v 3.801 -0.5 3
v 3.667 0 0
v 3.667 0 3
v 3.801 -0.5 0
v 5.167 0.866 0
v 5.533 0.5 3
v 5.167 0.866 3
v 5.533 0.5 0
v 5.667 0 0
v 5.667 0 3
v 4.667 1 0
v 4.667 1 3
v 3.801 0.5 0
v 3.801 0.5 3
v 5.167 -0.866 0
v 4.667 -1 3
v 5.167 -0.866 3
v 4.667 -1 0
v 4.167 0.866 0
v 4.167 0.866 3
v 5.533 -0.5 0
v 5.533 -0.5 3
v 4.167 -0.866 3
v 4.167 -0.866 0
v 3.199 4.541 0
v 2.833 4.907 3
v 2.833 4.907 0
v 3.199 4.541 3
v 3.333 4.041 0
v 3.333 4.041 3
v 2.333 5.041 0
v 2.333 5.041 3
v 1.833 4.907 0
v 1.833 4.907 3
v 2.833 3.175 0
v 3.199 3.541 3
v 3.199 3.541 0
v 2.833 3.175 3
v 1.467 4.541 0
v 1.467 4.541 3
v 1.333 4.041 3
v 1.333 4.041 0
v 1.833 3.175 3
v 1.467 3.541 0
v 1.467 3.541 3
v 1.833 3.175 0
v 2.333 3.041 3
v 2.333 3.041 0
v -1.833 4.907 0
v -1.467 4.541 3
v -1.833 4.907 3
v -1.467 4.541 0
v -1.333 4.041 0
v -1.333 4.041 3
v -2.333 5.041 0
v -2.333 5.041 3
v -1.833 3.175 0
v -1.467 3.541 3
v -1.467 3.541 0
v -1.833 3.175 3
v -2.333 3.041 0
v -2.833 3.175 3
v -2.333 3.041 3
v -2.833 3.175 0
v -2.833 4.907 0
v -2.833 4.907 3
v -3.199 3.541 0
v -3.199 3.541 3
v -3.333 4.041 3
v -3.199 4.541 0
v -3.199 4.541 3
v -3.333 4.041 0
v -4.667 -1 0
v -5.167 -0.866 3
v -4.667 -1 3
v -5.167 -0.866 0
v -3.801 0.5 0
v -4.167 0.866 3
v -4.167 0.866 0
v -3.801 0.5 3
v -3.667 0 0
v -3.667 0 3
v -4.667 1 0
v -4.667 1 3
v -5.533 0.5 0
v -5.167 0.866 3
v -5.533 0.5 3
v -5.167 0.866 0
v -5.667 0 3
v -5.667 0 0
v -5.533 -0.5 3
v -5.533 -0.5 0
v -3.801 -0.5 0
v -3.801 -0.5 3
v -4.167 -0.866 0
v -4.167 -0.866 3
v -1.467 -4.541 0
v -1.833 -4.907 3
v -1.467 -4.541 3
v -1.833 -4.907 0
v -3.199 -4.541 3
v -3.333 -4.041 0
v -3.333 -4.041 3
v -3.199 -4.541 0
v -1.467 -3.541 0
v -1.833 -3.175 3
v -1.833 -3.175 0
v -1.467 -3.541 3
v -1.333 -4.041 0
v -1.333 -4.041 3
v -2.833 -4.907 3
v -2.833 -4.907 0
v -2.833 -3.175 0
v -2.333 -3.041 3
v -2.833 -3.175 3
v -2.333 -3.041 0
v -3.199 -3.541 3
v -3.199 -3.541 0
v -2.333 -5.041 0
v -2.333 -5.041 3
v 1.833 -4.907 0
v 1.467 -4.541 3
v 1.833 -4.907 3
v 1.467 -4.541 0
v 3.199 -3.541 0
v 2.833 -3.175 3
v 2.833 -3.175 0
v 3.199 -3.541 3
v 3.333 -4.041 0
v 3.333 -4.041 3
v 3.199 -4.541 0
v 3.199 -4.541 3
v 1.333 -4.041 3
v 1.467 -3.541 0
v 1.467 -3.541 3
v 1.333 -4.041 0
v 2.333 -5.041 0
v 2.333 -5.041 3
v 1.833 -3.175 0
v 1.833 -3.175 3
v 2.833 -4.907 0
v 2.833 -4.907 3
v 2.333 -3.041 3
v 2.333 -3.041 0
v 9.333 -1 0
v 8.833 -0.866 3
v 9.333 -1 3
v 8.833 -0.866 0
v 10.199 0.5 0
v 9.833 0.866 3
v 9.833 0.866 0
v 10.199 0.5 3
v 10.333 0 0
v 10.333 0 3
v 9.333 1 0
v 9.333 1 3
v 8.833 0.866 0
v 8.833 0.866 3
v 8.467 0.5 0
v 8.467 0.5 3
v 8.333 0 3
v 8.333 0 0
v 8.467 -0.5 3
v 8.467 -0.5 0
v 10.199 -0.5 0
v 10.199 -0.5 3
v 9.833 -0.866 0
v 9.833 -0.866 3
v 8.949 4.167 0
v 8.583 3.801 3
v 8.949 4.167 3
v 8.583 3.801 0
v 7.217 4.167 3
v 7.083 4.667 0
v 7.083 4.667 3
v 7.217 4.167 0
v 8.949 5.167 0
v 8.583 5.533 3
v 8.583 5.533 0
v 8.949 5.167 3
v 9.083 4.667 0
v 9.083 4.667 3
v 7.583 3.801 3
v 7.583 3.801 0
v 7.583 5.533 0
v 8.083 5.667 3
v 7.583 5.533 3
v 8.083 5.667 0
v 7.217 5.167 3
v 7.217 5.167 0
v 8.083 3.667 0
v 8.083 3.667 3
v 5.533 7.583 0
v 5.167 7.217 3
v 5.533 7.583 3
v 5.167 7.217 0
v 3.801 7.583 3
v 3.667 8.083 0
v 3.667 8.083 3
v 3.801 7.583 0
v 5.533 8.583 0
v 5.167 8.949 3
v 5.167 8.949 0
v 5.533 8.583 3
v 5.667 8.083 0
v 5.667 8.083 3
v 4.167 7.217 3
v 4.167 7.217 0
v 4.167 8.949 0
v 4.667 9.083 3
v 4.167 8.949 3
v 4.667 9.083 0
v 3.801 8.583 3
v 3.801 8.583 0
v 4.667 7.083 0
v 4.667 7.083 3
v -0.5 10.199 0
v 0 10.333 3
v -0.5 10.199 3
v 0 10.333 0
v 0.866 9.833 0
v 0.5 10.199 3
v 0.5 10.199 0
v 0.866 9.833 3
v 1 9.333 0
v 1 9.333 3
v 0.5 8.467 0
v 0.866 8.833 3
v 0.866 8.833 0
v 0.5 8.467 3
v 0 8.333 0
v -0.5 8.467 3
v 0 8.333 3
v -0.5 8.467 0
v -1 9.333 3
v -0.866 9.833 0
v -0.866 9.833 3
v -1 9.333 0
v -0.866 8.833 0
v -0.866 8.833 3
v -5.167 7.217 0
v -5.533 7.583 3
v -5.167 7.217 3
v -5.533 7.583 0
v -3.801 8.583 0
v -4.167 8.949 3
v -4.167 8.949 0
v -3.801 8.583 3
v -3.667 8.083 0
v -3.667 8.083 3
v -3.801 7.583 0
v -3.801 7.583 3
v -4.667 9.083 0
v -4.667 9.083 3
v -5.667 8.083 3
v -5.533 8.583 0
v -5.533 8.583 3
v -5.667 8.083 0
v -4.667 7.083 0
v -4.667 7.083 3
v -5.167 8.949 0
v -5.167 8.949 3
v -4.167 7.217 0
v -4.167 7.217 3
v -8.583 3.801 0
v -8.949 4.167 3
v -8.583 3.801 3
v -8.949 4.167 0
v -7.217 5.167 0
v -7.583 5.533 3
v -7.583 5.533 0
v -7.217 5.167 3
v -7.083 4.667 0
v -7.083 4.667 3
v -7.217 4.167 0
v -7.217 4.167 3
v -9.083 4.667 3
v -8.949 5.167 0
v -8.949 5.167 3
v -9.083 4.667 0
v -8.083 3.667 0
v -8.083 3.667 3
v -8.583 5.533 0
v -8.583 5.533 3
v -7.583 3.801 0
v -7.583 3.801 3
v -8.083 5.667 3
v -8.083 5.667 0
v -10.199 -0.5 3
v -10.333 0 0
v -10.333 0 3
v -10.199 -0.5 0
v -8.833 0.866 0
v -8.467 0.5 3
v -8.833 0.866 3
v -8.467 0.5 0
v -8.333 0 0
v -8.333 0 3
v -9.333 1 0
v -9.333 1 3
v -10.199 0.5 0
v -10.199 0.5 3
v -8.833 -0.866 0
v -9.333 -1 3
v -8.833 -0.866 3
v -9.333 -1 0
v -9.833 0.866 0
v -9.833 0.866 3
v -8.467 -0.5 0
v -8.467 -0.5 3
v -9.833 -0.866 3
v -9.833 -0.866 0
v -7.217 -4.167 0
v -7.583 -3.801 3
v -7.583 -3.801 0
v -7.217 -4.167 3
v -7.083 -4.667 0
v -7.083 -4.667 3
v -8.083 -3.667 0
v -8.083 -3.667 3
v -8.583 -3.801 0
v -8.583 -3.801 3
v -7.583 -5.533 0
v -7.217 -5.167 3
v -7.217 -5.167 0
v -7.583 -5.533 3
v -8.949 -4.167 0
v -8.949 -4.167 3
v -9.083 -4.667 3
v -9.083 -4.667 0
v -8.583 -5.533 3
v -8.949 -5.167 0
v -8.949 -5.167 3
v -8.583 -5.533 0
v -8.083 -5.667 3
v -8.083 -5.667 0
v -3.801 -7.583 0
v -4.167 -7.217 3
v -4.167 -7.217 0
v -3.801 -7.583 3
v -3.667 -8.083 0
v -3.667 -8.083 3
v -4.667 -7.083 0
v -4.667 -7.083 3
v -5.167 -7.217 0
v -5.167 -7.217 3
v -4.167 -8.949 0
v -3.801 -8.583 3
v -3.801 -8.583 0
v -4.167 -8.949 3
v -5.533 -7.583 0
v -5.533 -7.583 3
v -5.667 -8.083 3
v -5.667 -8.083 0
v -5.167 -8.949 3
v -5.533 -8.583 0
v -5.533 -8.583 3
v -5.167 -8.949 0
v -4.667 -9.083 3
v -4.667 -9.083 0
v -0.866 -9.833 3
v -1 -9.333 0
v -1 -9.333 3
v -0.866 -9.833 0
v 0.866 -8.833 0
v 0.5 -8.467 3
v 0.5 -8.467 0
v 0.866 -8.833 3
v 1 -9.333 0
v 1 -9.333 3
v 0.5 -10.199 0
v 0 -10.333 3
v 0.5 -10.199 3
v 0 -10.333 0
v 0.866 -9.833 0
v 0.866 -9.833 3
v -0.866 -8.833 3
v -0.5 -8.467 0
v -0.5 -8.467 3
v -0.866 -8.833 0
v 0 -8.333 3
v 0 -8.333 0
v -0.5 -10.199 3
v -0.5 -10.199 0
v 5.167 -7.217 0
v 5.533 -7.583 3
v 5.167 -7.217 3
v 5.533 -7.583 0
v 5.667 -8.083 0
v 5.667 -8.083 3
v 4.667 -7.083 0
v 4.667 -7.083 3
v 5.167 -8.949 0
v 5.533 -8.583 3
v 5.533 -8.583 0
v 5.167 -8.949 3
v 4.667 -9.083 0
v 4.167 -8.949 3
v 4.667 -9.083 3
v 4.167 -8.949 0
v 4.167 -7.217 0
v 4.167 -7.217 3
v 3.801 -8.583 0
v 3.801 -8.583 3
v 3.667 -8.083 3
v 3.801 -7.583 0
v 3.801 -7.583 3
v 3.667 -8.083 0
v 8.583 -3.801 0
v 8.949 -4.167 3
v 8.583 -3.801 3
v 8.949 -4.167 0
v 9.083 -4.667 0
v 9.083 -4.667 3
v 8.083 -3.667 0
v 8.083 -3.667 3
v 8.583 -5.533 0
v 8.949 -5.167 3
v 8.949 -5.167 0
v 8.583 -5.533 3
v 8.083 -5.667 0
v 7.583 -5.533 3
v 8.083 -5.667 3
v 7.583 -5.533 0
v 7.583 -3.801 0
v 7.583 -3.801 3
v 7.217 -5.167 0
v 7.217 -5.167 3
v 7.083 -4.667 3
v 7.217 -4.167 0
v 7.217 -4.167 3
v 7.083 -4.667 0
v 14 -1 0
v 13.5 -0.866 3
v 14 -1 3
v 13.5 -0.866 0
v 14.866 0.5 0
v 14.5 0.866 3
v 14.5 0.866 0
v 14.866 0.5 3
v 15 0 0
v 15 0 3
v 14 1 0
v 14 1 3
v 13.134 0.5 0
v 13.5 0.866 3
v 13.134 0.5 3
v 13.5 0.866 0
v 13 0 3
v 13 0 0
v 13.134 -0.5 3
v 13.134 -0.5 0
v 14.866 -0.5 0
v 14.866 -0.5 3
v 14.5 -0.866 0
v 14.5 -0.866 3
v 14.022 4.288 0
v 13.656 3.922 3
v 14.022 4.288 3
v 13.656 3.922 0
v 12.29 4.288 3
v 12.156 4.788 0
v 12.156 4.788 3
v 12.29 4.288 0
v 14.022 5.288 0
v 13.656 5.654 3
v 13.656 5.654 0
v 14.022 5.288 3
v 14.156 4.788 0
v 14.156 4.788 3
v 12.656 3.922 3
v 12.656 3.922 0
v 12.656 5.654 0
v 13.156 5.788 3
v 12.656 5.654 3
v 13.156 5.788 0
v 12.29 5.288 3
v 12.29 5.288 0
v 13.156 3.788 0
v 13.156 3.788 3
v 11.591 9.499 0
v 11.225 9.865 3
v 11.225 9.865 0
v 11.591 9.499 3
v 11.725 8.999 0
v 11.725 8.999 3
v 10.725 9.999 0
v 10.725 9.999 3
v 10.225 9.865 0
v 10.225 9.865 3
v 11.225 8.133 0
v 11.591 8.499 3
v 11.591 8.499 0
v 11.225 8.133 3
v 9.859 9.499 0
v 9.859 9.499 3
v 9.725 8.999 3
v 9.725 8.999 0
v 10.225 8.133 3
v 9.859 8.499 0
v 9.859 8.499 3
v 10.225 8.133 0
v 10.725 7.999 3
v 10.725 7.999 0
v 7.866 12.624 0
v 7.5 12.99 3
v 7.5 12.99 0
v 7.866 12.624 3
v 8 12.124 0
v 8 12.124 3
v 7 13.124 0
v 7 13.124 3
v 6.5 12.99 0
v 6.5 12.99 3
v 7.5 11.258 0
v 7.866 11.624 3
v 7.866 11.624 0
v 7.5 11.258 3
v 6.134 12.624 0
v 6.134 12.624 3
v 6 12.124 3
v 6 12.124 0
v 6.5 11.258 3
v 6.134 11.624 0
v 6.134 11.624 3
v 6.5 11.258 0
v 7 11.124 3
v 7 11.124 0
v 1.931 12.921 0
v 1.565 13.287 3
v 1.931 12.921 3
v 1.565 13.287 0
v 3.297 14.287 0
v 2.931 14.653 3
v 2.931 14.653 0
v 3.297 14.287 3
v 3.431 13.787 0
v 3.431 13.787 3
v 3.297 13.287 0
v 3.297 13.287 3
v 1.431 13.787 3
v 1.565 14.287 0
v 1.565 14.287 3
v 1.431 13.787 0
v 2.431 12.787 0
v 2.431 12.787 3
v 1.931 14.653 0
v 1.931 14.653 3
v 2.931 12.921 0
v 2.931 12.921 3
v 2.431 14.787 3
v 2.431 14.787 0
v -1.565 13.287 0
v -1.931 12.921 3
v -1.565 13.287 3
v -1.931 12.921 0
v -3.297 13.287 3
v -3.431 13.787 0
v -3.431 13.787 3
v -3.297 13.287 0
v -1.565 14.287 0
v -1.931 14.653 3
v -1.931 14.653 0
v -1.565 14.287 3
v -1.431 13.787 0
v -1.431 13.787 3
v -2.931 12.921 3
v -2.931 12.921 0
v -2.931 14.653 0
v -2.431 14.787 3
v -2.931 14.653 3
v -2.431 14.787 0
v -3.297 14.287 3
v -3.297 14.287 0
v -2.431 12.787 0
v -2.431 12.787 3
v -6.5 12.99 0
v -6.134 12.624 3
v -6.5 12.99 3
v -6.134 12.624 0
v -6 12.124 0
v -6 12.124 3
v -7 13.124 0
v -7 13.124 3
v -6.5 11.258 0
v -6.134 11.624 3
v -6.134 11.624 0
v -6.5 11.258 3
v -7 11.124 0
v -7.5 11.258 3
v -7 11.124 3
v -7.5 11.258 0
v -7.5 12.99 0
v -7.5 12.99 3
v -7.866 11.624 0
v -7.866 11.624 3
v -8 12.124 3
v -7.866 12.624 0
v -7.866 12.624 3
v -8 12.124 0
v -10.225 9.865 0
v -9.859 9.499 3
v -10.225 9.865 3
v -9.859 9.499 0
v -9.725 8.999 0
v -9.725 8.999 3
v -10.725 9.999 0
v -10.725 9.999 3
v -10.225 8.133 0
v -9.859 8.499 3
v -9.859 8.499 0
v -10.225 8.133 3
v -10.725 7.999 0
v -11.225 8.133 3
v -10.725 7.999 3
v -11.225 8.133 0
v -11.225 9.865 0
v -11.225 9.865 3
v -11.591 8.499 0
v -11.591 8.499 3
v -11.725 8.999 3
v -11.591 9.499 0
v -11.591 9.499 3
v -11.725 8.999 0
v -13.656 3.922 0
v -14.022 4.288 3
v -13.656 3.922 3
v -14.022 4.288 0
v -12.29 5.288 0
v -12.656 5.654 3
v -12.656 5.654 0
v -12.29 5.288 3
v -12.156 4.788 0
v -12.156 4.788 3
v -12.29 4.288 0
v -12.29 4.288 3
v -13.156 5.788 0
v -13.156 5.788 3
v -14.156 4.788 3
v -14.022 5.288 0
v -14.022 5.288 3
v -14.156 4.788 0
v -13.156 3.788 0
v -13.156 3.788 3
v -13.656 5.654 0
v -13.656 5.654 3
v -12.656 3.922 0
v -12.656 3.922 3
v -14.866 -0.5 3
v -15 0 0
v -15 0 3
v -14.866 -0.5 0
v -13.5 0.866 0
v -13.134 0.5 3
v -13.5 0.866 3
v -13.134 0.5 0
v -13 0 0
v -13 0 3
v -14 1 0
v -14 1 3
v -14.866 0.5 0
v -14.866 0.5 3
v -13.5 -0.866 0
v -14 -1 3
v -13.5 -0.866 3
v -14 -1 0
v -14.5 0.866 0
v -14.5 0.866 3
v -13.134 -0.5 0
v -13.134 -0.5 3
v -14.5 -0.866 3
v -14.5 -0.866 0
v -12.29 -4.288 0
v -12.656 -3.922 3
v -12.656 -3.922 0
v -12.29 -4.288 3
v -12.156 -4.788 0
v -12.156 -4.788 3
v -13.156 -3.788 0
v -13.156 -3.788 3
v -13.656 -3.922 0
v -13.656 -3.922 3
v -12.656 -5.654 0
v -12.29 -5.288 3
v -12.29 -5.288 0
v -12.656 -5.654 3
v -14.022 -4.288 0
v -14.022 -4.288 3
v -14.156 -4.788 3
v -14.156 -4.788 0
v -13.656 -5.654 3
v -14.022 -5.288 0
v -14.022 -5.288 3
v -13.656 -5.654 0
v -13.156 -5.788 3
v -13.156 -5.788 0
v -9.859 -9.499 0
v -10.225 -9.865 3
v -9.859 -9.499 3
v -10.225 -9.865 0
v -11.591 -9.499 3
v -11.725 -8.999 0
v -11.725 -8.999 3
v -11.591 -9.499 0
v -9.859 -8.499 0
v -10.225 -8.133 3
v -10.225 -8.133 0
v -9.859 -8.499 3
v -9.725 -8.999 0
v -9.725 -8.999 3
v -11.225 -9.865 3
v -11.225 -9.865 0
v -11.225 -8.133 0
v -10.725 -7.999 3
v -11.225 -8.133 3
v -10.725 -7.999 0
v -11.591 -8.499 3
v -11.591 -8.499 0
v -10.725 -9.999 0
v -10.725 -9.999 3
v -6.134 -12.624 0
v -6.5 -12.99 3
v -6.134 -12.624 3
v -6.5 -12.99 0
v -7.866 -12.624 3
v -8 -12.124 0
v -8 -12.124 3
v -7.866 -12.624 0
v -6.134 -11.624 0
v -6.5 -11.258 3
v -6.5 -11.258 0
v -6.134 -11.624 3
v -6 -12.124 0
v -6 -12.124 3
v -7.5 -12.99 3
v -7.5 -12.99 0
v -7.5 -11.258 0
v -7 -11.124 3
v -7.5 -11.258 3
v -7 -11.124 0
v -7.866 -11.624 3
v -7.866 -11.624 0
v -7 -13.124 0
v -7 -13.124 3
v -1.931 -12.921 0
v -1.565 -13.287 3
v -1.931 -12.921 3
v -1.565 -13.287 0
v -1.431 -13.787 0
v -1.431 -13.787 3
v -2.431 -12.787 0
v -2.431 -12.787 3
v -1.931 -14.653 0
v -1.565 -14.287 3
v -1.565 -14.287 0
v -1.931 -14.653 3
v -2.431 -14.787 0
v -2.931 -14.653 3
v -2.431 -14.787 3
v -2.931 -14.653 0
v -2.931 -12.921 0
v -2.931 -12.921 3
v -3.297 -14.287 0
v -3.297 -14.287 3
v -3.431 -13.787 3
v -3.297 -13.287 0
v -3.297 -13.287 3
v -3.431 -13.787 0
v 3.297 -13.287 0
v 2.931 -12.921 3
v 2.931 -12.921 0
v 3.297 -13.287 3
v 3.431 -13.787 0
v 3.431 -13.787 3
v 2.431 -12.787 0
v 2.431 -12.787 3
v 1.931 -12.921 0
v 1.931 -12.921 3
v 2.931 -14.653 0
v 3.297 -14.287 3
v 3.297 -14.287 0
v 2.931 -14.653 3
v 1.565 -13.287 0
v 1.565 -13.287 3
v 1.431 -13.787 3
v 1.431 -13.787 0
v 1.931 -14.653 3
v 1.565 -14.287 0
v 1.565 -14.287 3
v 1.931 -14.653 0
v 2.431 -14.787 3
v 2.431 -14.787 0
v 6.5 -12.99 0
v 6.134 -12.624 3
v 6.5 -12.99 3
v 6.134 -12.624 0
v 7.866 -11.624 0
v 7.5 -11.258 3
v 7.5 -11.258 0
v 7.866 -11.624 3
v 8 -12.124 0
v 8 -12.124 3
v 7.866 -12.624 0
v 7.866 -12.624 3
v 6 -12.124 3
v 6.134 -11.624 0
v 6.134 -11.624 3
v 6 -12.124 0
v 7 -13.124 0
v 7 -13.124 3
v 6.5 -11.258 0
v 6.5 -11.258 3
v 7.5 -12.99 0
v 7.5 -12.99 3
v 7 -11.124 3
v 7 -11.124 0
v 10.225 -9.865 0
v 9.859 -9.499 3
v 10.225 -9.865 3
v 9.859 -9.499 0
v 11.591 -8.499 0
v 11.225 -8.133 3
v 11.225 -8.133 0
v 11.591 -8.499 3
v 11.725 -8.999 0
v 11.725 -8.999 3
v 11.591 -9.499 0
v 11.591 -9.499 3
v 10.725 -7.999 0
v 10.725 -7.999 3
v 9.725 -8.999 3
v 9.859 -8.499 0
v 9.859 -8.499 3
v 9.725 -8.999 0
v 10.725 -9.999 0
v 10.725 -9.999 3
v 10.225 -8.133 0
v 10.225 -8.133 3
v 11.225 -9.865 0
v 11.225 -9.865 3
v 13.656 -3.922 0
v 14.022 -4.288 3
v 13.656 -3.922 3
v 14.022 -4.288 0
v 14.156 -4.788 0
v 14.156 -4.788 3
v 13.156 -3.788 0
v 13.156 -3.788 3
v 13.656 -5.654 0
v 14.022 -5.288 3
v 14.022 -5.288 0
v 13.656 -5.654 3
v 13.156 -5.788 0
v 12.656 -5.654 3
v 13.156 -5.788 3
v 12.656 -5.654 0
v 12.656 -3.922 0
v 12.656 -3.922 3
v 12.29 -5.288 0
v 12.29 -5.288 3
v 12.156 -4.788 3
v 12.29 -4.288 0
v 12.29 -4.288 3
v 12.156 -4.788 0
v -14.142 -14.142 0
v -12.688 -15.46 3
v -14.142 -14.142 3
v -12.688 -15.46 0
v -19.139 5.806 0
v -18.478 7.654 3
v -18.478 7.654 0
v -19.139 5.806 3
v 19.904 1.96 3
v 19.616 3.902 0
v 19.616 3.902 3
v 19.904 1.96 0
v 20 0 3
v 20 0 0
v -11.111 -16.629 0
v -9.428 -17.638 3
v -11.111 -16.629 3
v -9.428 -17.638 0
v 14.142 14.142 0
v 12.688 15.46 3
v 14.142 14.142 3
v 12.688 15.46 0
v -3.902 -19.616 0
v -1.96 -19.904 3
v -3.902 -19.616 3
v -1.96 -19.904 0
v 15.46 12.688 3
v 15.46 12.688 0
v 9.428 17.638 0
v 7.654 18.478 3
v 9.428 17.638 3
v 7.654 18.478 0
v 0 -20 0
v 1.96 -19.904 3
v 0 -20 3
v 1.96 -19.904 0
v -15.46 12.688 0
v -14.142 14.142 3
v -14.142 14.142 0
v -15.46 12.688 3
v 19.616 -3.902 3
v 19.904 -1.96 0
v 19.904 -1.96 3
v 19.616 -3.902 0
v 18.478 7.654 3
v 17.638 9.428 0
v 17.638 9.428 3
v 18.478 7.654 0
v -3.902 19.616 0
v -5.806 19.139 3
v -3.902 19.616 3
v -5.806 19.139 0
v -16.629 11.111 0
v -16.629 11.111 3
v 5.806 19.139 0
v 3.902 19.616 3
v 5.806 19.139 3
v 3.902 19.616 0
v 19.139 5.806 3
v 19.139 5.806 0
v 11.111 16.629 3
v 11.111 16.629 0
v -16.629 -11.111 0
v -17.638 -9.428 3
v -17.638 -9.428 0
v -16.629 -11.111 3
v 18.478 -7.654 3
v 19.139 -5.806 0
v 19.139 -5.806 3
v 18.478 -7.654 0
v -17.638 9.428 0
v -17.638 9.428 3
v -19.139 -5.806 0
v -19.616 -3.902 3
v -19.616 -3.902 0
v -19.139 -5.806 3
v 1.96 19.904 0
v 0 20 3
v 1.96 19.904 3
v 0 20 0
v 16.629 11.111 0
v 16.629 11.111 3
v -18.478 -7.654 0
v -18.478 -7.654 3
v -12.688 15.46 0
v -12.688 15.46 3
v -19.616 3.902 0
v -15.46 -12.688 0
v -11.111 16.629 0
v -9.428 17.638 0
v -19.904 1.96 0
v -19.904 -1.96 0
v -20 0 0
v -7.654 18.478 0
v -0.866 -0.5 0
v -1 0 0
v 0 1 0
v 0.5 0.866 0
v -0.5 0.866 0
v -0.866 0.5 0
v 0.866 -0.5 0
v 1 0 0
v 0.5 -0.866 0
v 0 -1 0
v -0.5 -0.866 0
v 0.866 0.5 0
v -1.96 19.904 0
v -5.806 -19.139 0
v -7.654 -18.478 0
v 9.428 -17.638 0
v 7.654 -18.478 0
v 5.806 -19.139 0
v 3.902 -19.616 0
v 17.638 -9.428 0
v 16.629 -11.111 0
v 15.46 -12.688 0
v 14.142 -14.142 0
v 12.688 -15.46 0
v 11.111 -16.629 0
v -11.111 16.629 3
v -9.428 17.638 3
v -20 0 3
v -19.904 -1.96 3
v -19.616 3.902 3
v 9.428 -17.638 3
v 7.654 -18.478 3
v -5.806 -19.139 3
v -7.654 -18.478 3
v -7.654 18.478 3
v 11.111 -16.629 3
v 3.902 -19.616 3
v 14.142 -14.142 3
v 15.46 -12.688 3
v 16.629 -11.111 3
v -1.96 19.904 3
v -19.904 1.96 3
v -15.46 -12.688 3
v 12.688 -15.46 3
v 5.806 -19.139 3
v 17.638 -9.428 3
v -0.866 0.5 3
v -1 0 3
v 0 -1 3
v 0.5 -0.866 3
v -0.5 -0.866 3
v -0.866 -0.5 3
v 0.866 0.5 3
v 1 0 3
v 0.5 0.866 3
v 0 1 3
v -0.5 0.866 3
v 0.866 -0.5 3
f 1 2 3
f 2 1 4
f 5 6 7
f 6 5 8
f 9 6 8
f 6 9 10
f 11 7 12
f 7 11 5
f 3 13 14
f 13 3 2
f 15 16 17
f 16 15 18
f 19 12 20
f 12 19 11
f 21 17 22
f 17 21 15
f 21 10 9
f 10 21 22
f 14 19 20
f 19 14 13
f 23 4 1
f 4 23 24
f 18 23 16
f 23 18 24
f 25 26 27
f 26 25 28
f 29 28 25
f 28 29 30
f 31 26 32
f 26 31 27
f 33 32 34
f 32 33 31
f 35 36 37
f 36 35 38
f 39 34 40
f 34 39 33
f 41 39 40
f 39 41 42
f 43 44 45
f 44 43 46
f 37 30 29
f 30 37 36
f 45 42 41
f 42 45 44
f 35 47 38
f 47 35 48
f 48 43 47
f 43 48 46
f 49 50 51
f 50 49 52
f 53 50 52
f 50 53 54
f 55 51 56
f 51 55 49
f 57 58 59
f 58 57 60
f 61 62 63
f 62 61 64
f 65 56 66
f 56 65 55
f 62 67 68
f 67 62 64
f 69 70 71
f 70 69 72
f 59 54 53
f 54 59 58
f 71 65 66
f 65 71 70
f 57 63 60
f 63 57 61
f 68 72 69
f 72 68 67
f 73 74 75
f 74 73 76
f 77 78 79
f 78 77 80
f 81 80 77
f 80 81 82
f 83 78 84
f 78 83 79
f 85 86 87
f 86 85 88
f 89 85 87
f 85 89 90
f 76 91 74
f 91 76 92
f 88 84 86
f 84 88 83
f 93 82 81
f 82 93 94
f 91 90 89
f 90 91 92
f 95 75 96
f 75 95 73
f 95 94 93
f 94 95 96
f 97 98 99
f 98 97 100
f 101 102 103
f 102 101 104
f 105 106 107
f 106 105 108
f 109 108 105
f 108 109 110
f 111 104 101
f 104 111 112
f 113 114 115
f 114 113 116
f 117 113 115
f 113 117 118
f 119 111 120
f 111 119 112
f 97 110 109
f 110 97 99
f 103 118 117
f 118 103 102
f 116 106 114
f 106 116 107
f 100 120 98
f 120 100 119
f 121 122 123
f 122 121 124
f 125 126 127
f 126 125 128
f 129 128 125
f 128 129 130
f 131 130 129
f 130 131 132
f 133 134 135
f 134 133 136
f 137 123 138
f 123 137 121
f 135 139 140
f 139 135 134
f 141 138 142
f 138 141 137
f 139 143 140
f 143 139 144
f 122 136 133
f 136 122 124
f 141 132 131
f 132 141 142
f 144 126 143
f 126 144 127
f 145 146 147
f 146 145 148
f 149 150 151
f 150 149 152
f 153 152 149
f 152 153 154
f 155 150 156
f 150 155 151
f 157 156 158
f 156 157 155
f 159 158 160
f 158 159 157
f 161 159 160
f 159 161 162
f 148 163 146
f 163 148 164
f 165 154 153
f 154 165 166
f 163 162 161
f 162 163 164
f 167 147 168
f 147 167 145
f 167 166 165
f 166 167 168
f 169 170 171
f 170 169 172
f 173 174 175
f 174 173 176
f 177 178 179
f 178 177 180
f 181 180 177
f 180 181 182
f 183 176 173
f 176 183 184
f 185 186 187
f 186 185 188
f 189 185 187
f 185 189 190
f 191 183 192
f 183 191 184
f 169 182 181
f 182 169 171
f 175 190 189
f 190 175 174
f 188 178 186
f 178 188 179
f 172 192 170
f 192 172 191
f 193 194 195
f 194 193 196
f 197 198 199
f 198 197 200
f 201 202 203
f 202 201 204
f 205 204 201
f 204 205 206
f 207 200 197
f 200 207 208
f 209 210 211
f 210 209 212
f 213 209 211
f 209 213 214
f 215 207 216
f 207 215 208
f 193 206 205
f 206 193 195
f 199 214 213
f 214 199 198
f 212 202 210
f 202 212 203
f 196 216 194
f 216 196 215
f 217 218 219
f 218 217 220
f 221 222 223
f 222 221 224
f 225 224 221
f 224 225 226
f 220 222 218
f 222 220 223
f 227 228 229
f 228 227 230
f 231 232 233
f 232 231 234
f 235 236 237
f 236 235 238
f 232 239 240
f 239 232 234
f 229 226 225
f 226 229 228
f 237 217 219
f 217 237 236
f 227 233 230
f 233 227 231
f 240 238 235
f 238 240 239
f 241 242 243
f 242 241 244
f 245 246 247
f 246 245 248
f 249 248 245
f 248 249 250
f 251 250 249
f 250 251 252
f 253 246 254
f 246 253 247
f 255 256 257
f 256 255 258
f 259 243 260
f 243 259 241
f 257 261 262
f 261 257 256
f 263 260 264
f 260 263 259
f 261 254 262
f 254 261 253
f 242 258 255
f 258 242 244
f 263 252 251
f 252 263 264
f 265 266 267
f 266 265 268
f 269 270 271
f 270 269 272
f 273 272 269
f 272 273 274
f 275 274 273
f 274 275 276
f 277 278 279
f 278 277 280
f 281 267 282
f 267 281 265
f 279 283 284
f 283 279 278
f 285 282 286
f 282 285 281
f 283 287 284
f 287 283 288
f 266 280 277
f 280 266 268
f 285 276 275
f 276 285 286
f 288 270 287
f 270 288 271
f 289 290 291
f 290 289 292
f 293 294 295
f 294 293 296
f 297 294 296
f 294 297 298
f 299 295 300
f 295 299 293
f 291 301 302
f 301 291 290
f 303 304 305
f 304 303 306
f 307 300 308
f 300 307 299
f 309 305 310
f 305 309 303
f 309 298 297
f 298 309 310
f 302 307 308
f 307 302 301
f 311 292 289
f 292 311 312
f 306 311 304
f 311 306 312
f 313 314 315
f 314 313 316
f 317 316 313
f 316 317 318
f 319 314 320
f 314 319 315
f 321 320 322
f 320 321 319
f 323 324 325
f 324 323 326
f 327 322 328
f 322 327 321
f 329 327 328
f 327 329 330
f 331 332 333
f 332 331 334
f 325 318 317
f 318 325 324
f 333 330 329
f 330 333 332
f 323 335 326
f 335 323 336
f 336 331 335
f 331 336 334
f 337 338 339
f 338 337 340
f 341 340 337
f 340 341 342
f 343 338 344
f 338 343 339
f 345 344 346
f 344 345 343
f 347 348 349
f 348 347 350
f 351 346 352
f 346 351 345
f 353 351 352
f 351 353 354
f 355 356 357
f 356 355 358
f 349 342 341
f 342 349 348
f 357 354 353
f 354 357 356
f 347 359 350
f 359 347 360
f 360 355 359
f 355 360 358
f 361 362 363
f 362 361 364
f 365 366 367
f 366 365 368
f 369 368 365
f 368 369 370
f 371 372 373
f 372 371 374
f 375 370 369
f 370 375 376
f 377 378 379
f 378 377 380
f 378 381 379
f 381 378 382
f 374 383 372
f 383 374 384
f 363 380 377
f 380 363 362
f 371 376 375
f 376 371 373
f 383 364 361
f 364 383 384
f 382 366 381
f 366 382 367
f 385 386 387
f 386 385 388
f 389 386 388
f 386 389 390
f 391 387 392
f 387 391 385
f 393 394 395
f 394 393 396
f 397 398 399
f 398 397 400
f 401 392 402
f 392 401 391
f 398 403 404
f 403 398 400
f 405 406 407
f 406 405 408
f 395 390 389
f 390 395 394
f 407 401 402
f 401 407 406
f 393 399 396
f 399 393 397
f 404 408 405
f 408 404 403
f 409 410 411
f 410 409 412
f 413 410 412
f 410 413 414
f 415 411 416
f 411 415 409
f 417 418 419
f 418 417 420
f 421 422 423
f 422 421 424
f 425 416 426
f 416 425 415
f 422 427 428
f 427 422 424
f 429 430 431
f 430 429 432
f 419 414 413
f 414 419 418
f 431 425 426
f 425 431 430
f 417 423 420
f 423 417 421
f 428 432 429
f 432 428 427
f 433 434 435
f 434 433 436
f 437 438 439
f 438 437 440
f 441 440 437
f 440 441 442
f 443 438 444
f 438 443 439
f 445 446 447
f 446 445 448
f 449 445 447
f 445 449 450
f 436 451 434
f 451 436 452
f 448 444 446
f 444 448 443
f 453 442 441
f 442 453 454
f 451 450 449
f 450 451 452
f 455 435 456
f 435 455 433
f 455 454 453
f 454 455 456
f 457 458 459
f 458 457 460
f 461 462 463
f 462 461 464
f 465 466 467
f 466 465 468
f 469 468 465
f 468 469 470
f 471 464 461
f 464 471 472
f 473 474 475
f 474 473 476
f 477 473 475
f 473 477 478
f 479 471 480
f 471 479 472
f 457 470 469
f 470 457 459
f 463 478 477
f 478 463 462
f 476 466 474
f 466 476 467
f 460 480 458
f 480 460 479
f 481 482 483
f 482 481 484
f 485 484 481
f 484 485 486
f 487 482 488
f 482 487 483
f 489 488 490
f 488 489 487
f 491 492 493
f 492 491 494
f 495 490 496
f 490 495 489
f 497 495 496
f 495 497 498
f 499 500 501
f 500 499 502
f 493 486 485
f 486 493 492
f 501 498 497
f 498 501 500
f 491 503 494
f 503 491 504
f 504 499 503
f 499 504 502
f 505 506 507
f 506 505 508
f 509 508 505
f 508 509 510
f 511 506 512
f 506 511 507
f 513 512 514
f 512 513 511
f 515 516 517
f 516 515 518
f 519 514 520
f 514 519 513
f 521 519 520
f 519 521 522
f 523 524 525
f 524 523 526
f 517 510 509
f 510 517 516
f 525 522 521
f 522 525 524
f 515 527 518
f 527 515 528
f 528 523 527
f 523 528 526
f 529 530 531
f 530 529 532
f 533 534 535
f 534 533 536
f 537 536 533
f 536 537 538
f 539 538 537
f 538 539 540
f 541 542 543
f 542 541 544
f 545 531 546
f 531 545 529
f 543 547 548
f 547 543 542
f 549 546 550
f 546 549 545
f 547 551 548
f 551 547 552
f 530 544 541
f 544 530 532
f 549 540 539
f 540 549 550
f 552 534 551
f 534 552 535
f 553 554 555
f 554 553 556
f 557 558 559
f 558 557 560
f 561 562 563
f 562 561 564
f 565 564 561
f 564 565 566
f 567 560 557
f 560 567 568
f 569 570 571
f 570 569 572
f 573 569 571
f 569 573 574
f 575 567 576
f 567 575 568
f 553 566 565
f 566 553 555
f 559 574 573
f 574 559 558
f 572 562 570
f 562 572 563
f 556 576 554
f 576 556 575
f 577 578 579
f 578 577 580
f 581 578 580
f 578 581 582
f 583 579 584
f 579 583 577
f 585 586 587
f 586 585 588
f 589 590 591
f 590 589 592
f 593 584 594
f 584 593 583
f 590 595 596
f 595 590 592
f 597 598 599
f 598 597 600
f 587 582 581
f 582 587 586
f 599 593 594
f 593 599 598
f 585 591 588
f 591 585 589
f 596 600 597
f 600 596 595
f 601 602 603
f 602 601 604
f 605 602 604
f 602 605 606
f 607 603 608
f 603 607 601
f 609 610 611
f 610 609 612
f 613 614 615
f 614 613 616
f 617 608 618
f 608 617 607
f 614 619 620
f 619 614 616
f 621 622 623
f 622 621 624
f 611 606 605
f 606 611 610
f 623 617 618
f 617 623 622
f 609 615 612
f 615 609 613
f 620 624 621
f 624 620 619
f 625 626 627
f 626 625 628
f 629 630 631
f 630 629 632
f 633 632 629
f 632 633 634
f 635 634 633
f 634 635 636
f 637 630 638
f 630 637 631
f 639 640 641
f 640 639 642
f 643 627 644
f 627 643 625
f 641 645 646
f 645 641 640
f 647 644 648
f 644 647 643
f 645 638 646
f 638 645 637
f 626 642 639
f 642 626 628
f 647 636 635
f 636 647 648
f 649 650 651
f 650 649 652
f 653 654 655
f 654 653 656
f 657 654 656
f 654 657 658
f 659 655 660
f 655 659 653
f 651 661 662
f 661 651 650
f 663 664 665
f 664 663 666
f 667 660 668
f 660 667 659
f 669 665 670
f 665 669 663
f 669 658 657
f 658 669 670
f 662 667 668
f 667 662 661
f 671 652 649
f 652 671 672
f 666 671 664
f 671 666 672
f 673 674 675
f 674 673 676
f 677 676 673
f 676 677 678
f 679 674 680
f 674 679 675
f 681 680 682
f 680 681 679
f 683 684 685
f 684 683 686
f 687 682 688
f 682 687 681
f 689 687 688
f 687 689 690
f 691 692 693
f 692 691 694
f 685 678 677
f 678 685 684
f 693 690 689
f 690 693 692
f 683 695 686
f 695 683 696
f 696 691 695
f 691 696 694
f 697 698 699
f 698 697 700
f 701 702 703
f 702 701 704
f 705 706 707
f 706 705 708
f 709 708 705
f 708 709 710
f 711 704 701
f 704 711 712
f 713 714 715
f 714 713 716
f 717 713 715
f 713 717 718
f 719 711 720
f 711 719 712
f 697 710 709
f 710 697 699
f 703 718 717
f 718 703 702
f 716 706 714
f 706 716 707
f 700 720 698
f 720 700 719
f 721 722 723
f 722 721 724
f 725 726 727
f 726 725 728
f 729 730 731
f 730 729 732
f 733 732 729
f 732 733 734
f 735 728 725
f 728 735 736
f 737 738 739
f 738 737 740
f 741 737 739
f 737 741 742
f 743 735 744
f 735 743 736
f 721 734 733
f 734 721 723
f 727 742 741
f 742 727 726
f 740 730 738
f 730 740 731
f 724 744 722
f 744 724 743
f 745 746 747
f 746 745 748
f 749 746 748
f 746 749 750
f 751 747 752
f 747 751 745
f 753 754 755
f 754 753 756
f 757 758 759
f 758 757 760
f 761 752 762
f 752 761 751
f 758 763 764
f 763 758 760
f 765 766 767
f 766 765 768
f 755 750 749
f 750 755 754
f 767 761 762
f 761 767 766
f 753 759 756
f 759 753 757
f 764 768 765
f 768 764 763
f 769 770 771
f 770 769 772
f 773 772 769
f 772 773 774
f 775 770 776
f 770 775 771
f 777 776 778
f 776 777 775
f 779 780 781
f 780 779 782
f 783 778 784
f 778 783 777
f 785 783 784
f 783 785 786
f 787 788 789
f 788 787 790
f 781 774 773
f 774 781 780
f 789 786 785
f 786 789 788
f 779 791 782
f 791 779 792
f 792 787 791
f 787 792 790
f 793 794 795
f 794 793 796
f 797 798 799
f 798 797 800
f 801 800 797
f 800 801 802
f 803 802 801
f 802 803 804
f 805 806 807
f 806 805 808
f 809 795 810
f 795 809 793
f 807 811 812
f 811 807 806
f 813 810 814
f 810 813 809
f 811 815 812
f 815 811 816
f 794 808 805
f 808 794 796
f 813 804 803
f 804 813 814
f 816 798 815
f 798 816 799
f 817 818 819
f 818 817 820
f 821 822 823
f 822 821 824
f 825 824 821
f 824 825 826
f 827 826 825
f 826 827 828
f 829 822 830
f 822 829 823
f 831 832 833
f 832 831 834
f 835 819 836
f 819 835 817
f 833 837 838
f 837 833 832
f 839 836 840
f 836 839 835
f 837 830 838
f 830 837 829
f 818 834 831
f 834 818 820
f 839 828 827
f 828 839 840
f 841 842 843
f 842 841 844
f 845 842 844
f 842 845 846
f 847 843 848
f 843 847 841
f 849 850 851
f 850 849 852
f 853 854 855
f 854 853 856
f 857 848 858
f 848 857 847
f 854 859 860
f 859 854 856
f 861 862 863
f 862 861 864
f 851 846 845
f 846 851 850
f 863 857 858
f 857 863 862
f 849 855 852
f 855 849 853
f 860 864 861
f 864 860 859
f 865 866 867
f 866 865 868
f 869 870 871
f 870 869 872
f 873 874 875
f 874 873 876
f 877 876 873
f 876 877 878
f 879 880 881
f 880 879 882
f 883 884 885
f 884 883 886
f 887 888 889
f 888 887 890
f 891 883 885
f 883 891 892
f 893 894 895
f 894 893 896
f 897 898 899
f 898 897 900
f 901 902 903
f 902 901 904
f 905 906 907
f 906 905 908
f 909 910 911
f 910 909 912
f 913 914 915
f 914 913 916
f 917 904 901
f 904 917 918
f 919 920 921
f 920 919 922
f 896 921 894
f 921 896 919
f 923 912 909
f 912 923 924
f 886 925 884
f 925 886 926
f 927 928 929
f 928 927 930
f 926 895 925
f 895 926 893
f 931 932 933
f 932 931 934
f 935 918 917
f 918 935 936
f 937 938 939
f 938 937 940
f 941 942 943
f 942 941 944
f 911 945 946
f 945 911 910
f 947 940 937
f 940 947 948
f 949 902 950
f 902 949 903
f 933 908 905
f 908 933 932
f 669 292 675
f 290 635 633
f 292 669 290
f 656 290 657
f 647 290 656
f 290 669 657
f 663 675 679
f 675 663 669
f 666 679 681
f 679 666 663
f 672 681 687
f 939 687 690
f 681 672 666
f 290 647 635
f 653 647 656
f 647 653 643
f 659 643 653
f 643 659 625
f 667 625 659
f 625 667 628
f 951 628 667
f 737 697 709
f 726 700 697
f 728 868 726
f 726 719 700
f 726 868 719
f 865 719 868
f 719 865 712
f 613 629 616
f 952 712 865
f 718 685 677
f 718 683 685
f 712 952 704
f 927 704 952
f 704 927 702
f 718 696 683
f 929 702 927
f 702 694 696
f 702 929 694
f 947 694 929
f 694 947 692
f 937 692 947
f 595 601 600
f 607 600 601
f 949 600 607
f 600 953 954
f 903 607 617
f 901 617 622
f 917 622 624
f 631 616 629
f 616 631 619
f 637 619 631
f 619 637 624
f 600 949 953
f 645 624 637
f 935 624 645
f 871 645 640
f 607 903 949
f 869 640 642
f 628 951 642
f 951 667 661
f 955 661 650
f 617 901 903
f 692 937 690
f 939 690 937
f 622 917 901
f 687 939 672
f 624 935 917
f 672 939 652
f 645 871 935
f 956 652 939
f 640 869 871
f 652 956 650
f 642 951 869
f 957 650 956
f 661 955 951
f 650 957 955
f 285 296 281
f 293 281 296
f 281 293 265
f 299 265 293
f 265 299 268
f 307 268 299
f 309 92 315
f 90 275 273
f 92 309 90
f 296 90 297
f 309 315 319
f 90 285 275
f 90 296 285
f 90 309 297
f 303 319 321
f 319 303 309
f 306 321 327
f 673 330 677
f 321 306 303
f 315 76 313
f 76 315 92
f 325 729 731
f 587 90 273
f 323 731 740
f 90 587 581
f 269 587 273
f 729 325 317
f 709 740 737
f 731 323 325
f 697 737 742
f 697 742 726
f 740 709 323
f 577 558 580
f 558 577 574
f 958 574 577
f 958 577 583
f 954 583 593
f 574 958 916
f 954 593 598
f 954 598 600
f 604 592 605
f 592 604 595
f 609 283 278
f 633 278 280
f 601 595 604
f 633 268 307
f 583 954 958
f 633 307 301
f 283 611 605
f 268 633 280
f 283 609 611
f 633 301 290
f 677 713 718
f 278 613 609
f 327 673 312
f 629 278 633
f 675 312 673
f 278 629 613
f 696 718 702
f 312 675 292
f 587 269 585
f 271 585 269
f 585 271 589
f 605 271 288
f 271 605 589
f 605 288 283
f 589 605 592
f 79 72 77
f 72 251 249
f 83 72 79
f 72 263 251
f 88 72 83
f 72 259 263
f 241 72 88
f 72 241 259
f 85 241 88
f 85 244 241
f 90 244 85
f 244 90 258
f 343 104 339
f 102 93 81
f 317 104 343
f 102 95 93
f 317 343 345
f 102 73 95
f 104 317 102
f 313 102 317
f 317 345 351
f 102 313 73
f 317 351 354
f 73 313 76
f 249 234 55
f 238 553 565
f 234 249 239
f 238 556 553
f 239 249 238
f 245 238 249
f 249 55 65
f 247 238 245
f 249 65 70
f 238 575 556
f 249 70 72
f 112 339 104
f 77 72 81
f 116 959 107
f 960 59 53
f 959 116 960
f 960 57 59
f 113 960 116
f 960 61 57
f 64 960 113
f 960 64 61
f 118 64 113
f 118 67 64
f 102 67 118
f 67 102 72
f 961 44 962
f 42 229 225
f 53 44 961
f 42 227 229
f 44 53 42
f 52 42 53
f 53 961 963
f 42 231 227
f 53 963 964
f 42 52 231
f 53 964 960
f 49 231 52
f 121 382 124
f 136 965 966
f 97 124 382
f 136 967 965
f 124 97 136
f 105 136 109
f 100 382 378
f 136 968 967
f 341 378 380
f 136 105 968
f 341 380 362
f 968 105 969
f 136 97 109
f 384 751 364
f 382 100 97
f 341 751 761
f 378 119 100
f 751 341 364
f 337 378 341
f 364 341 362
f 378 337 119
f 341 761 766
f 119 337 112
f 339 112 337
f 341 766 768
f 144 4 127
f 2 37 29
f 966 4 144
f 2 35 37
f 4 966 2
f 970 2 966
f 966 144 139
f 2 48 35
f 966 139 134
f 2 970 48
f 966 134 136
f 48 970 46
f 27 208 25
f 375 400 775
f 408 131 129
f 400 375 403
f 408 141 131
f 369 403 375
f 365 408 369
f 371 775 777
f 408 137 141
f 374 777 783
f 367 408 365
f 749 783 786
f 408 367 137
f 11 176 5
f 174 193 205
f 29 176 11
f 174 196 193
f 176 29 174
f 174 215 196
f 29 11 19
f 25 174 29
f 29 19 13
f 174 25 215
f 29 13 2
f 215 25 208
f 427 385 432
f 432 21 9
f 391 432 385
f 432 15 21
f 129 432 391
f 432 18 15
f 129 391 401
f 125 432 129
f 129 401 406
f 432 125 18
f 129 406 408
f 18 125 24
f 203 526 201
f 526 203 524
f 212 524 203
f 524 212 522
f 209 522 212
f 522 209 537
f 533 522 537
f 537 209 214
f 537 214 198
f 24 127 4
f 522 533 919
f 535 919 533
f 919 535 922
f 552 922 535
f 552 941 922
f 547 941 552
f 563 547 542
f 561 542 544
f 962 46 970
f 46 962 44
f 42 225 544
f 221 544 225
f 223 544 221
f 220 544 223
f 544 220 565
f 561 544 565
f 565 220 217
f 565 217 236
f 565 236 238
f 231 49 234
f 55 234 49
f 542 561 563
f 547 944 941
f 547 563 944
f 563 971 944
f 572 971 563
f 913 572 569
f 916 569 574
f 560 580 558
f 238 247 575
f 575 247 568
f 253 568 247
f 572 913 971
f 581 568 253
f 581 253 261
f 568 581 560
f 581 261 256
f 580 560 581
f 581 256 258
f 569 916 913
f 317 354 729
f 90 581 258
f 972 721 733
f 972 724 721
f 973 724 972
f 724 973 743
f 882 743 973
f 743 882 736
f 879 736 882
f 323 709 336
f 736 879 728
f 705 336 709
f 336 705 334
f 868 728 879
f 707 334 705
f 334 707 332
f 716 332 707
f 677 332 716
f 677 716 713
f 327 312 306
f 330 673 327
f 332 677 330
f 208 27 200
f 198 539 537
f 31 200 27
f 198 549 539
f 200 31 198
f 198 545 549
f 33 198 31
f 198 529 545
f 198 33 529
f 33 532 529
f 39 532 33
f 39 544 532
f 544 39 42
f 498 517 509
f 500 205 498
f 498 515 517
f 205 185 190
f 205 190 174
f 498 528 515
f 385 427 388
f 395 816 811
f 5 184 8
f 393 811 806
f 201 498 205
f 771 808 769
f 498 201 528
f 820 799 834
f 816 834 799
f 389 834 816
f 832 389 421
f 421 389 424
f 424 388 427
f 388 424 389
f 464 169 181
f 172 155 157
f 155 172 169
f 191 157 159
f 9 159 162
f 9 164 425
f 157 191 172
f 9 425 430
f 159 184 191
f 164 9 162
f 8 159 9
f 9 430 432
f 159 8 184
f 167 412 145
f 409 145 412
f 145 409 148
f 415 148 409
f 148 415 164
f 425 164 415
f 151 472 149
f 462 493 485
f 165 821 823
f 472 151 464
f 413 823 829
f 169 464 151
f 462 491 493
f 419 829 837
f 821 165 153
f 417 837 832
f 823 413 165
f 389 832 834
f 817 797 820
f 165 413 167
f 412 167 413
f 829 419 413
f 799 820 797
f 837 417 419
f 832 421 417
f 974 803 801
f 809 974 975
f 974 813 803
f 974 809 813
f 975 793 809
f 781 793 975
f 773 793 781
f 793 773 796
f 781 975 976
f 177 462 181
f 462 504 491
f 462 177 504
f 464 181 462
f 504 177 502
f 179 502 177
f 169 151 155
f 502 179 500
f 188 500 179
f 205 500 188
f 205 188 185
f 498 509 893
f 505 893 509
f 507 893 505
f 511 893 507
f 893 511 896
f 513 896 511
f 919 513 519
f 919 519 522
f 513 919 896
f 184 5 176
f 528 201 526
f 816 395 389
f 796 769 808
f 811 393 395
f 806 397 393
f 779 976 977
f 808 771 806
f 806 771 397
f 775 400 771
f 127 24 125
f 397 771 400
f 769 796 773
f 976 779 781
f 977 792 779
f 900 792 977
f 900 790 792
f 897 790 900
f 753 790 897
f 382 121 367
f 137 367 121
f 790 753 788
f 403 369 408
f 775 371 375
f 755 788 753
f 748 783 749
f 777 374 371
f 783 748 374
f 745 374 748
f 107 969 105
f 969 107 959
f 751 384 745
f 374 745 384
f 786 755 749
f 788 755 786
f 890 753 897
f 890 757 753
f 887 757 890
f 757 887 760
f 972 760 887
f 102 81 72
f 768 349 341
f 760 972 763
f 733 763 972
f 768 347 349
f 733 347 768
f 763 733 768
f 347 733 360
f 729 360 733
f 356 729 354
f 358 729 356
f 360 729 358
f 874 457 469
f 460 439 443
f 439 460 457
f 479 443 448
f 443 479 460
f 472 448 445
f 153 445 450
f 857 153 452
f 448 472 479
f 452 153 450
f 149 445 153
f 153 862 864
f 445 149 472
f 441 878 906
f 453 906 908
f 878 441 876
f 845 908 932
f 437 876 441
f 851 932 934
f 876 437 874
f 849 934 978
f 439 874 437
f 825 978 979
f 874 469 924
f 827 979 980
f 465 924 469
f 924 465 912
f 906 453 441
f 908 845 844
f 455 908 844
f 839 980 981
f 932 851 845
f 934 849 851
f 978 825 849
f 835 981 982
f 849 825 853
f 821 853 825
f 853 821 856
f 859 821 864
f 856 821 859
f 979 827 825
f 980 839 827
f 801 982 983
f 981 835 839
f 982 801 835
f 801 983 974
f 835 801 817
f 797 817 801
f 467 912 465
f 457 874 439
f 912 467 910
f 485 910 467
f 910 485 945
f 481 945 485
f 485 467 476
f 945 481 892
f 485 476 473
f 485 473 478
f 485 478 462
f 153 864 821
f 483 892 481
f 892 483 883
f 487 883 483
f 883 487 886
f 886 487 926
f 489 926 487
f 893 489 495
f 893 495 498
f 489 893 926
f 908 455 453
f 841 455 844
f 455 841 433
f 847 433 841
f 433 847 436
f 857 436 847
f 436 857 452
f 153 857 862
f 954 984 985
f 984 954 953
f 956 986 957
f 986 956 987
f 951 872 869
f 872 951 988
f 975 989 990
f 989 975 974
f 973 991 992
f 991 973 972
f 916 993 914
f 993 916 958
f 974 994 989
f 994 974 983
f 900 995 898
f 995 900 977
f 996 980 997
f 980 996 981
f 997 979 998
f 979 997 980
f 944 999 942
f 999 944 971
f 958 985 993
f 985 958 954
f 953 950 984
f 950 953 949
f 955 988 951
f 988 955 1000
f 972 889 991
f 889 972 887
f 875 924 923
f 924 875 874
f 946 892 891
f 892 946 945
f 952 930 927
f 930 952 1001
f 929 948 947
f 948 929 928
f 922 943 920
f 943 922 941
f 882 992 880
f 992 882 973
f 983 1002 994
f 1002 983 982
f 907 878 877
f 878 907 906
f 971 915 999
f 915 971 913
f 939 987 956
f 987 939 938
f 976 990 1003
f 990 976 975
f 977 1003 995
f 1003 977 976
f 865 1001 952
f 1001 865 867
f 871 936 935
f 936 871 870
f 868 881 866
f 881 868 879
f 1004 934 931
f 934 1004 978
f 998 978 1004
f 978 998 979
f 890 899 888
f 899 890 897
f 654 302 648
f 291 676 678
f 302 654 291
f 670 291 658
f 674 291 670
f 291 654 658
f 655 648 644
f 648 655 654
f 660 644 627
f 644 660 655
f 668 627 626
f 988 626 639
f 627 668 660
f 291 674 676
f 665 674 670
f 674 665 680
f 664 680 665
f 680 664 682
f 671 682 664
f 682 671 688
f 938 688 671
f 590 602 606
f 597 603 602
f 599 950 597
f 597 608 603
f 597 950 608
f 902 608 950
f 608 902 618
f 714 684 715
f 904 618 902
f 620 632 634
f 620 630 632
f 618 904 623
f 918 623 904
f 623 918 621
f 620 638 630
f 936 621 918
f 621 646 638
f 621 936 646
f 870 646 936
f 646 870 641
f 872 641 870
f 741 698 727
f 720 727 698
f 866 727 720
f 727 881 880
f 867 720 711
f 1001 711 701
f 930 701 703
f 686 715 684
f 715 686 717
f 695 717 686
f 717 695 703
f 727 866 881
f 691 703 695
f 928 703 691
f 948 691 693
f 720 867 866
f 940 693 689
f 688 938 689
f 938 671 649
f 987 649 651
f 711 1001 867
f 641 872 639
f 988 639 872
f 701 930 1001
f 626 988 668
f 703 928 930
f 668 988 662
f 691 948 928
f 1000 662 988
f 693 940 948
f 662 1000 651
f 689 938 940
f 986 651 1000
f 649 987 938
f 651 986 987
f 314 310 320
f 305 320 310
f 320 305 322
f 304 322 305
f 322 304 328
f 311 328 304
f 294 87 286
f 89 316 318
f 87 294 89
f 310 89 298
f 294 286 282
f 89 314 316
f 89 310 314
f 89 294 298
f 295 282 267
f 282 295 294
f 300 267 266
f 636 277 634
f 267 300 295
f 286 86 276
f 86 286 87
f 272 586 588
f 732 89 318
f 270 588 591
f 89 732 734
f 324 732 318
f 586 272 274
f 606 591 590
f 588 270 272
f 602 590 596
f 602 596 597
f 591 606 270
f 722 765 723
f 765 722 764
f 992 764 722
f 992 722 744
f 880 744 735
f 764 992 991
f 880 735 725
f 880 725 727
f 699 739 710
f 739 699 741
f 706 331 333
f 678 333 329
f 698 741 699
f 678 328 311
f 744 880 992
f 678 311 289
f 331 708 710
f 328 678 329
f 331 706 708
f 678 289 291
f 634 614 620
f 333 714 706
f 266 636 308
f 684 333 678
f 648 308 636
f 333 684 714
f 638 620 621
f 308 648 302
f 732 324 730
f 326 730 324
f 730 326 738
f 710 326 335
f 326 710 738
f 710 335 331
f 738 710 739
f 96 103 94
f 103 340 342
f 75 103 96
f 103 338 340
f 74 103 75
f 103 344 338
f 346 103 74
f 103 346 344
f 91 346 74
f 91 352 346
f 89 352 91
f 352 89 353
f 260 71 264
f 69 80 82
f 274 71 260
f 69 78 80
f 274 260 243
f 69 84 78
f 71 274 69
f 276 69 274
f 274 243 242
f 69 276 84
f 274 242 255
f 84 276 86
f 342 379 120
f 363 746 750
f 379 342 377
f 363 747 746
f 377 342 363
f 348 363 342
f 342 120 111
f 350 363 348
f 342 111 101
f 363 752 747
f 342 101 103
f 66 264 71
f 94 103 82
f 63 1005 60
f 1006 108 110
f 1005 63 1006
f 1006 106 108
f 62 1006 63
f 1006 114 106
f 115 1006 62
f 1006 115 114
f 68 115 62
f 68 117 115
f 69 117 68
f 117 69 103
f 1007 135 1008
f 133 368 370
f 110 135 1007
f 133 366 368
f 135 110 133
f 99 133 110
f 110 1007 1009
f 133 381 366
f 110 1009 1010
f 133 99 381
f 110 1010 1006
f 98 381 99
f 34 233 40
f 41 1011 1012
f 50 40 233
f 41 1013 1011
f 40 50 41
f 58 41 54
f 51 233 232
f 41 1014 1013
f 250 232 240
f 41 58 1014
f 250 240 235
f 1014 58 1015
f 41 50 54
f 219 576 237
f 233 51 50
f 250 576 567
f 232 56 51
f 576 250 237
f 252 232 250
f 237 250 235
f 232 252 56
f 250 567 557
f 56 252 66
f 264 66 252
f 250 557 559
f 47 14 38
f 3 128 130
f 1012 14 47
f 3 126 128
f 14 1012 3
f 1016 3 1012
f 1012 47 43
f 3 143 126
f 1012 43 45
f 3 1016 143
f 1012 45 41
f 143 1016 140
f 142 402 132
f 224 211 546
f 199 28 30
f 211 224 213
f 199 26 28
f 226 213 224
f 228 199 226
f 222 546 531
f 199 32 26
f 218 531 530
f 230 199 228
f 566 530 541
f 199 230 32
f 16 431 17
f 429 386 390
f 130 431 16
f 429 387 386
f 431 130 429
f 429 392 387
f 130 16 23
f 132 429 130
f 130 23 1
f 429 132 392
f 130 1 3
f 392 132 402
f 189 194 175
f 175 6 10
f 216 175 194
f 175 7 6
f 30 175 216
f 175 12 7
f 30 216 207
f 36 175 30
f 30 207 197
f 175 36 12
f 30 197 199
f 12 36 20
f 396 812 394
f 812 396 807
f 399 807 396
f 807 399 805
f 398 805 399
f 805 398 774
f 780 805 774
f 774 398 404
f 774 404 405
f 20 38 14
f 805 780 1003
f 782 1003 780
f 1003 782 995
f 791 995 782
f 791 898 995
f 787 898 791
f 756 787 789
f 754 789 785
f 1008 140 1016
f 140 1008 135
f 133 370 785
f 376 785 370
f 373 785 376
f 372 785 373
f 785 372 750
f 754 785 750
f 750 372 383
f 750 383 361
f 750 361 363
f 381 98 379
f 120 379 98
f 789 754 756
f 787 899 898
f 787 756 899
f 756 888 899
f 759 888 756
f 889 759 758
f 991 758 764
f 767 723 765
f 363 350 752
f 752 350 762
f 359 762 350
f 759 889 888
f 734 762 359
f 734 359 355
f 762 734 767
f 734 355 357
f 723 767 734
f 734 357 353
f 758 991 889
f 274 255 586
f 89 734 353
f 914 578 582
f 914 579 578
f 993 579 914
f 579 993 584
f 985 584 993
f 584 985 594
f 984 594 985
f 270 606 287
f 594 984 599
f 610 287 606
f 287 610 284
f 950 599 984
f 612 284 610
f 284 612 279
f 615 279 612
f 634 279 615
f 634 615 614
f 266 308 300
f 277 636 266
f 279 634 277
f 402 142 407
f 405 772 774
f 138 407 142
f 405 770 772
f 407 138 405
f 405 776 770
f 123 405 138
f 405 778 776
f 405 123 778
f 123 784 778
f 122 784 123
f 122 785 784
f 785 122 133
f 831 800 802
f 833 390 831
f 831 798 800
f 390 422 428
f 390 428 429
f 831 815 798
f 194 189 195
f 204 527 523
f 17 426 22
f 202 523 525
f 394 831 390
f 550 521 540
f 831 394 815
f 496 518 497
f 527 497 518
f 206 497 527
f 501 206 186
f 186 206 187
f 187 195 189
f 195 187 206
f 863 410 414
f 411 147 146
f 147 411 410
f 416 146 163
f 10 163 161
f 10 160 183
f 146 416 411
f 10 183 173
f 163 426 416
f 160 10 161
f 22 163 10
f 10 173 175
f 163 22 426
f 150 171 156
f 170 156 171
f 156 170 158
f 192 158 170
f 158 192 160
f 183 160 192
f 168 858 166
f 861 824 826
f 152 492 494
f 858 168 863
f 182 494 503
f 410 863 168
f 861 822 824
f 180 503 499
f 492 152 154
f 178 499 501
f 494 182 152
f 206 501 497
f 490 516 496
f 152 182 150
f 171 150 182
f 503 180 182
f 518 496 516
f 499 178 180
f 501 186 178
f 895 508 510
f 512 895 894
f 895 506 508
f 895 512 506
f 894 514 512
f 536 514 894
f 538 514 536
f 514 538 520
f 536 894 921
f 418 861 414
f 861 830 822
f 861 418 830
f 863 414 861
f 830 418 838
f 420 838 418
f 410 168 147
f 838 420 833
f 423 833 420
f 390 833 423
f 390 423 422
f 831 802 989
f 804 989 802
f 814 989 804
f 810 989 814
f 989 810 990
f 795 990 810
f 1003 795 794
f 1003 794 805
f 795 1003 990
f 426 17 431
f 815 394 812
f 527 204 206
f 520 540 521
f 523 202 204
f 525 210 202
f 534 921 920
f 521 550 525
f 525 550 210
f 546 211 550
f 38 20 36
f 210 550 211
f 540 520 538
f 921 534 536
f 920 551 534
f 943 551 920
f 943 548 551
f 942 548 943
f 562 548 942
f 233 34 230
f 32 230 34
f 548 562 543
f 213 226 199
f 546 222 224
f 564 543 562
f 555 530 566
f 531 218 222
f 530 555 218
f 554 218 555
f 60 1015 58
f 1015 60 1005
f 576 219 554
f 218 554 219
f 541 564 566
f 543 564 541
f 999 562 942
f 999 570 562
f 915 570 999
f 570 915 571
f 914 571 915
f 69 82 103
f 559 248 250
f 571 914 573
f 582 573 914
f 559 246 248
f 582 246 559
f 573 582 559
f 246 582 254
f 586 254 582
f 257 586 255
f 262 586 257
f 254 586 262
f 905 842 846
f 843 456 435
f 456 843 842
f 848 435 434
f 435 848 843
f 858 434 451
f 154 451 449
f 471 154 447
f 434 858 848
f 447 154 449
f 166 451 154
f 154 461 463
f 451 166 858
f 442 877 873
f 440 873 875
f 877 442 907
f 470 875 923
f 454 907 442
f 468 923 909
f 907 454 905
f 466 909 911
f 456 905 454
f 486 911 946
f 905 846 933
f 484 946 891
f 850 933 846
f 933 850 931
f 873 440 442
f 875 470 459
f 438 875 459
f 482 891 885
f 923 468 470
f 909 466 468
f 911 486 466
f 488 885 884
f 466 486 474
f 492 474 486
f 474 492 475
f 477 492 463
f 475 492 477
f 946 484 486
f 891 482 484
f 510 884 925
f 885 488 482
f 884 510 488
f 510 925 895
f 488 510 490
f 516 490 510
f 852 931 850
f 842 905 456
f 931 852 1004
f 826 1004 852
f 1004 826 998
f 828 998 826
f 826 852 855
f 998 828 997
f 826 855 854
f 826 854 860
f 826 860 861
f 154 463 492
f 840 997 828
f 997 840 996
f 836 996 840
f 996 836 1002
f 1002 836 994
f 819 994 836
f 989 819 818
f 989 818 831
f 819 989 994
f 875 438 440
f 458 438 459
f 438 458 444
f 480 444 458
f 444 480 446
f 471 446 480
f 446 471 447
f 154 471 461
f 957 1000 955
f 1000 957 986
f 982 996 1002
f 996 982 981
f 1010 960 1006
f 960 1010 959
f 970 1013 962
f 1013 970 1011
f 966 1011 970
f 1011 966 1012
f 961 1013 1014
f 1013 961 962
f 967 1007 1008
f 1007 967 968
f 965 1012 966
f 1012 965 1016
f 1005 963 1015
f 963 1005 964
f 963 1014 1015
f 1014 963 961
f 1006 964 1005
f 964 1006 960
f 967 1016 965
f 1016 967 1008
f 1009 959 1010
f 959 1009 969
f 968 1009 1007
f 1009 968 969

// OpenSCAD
// file: params.scad
// Shared measurements for the hookswitch assembly (handset / hook / cradle / switch).
// MEASURE YOUR ACTUAL HANDSET AND SWITCH AND EDIT THESE before printing —
// defaults are typical old-telephone-handset / generic microswitch dimensions.

// --- Handset ---
handset_barrel_d   = 34;   // diameter of the handset where it rests in the cradle prongs
handset_rest_len   = 60;   // length of barrel section that sits in the saddle

// --- Hook lever (see-saw pressed down by handset weight) ---
lever_length       = 70;
lever_width        = 22;
lever_thickness    = 5;
pivot_pin_d        = 4;    // diameter of the pivot rod/pin (e.g. M4 bolt or steel rod)
pivot_offset       = 20;   // distance from lever's front edge to the pivot axis

// --- Microswitch (generic mini SPDT lever switch, e.g. Omron V-15x / KW-11) ---
switch_body_w      = 12.8;
switch_body_d      = 6.4;
switch_body_h      = 6.4;
switch_mount_hole_spacing = 10;  // center-to-center of the two mounting screw holes
switch_screw_d     = 2.2;        // clearance hole for M2 self-tap

// --- IR blaster (persona/channel-switch signaling, see PHILOSOPHY.md #5) ---
ir_led_d           = 5;    // standard 5mm IR LED
ir_mount_w         = 20;
ir_mount_h         = 12;

// --- Earcon speaker (small dedicated driver for crt-earcon.sh beeps,
// separate from the handset earpiece -- see IDLE-BAIT.md) ---
earcon_speaker_d   = 28;   // typical small round speaker (e.g. 28mm mini driver)
earcon_grille_hole_d = 2;
earcon_grille_hole_spacing = 4;

// --- General ---
wall               = 3;
clearance          = 0.3;  // fit clearance between mating printed parts
$fn                = 48;
// main file
// Grille + mount for a small dedicated speaker driving crt-earcon.sh's
// beeps (IDLE-BAIT.md / SIDETONE.md), separate from the handset earpiece
// -- the idea being the CRT itself gets a voice for non-verbal cues
// (beeps, chirps) distinct from anything that only plays through the
// phone. A round hole pattern over a speaker cavity, printable as a
// snap/screw insert into a project box or the CRT chassis.
//
// STATUS: pure speculative geometry -- no speaker purchased, no mounting
// surface measured. Placeholder shape to react to, not print-ready.
include <params.scad>

module earcon_grille() {
  plate_d = earcon_speaker_d + wall * 4;
  difference() {
    cylinder(d = plate_d, h = wall, $fn = 64);
    // concentric rings of small holes -- classic speaker-grille pattern
    for (ring = [0:2]) {
      r = (earcon_speaker_d / 2) * (ring + 1) / 3;
      n = 6 + ring * 6;
      for (i = [0:n-1]) {
        a = i * 360 / n;
        translate([r * cos(a), r * sin(a), -1])
          cylinder(d = earcon_grille_hole_d, h = wall + 2, $fn = 12);
      }
    }
    // center hole too
    translate([0, 0, -1]) cylinder(d = earcon_grille_hole_d, h = wall + 2, $fn = 12);
  }
}

earcon_grille();
